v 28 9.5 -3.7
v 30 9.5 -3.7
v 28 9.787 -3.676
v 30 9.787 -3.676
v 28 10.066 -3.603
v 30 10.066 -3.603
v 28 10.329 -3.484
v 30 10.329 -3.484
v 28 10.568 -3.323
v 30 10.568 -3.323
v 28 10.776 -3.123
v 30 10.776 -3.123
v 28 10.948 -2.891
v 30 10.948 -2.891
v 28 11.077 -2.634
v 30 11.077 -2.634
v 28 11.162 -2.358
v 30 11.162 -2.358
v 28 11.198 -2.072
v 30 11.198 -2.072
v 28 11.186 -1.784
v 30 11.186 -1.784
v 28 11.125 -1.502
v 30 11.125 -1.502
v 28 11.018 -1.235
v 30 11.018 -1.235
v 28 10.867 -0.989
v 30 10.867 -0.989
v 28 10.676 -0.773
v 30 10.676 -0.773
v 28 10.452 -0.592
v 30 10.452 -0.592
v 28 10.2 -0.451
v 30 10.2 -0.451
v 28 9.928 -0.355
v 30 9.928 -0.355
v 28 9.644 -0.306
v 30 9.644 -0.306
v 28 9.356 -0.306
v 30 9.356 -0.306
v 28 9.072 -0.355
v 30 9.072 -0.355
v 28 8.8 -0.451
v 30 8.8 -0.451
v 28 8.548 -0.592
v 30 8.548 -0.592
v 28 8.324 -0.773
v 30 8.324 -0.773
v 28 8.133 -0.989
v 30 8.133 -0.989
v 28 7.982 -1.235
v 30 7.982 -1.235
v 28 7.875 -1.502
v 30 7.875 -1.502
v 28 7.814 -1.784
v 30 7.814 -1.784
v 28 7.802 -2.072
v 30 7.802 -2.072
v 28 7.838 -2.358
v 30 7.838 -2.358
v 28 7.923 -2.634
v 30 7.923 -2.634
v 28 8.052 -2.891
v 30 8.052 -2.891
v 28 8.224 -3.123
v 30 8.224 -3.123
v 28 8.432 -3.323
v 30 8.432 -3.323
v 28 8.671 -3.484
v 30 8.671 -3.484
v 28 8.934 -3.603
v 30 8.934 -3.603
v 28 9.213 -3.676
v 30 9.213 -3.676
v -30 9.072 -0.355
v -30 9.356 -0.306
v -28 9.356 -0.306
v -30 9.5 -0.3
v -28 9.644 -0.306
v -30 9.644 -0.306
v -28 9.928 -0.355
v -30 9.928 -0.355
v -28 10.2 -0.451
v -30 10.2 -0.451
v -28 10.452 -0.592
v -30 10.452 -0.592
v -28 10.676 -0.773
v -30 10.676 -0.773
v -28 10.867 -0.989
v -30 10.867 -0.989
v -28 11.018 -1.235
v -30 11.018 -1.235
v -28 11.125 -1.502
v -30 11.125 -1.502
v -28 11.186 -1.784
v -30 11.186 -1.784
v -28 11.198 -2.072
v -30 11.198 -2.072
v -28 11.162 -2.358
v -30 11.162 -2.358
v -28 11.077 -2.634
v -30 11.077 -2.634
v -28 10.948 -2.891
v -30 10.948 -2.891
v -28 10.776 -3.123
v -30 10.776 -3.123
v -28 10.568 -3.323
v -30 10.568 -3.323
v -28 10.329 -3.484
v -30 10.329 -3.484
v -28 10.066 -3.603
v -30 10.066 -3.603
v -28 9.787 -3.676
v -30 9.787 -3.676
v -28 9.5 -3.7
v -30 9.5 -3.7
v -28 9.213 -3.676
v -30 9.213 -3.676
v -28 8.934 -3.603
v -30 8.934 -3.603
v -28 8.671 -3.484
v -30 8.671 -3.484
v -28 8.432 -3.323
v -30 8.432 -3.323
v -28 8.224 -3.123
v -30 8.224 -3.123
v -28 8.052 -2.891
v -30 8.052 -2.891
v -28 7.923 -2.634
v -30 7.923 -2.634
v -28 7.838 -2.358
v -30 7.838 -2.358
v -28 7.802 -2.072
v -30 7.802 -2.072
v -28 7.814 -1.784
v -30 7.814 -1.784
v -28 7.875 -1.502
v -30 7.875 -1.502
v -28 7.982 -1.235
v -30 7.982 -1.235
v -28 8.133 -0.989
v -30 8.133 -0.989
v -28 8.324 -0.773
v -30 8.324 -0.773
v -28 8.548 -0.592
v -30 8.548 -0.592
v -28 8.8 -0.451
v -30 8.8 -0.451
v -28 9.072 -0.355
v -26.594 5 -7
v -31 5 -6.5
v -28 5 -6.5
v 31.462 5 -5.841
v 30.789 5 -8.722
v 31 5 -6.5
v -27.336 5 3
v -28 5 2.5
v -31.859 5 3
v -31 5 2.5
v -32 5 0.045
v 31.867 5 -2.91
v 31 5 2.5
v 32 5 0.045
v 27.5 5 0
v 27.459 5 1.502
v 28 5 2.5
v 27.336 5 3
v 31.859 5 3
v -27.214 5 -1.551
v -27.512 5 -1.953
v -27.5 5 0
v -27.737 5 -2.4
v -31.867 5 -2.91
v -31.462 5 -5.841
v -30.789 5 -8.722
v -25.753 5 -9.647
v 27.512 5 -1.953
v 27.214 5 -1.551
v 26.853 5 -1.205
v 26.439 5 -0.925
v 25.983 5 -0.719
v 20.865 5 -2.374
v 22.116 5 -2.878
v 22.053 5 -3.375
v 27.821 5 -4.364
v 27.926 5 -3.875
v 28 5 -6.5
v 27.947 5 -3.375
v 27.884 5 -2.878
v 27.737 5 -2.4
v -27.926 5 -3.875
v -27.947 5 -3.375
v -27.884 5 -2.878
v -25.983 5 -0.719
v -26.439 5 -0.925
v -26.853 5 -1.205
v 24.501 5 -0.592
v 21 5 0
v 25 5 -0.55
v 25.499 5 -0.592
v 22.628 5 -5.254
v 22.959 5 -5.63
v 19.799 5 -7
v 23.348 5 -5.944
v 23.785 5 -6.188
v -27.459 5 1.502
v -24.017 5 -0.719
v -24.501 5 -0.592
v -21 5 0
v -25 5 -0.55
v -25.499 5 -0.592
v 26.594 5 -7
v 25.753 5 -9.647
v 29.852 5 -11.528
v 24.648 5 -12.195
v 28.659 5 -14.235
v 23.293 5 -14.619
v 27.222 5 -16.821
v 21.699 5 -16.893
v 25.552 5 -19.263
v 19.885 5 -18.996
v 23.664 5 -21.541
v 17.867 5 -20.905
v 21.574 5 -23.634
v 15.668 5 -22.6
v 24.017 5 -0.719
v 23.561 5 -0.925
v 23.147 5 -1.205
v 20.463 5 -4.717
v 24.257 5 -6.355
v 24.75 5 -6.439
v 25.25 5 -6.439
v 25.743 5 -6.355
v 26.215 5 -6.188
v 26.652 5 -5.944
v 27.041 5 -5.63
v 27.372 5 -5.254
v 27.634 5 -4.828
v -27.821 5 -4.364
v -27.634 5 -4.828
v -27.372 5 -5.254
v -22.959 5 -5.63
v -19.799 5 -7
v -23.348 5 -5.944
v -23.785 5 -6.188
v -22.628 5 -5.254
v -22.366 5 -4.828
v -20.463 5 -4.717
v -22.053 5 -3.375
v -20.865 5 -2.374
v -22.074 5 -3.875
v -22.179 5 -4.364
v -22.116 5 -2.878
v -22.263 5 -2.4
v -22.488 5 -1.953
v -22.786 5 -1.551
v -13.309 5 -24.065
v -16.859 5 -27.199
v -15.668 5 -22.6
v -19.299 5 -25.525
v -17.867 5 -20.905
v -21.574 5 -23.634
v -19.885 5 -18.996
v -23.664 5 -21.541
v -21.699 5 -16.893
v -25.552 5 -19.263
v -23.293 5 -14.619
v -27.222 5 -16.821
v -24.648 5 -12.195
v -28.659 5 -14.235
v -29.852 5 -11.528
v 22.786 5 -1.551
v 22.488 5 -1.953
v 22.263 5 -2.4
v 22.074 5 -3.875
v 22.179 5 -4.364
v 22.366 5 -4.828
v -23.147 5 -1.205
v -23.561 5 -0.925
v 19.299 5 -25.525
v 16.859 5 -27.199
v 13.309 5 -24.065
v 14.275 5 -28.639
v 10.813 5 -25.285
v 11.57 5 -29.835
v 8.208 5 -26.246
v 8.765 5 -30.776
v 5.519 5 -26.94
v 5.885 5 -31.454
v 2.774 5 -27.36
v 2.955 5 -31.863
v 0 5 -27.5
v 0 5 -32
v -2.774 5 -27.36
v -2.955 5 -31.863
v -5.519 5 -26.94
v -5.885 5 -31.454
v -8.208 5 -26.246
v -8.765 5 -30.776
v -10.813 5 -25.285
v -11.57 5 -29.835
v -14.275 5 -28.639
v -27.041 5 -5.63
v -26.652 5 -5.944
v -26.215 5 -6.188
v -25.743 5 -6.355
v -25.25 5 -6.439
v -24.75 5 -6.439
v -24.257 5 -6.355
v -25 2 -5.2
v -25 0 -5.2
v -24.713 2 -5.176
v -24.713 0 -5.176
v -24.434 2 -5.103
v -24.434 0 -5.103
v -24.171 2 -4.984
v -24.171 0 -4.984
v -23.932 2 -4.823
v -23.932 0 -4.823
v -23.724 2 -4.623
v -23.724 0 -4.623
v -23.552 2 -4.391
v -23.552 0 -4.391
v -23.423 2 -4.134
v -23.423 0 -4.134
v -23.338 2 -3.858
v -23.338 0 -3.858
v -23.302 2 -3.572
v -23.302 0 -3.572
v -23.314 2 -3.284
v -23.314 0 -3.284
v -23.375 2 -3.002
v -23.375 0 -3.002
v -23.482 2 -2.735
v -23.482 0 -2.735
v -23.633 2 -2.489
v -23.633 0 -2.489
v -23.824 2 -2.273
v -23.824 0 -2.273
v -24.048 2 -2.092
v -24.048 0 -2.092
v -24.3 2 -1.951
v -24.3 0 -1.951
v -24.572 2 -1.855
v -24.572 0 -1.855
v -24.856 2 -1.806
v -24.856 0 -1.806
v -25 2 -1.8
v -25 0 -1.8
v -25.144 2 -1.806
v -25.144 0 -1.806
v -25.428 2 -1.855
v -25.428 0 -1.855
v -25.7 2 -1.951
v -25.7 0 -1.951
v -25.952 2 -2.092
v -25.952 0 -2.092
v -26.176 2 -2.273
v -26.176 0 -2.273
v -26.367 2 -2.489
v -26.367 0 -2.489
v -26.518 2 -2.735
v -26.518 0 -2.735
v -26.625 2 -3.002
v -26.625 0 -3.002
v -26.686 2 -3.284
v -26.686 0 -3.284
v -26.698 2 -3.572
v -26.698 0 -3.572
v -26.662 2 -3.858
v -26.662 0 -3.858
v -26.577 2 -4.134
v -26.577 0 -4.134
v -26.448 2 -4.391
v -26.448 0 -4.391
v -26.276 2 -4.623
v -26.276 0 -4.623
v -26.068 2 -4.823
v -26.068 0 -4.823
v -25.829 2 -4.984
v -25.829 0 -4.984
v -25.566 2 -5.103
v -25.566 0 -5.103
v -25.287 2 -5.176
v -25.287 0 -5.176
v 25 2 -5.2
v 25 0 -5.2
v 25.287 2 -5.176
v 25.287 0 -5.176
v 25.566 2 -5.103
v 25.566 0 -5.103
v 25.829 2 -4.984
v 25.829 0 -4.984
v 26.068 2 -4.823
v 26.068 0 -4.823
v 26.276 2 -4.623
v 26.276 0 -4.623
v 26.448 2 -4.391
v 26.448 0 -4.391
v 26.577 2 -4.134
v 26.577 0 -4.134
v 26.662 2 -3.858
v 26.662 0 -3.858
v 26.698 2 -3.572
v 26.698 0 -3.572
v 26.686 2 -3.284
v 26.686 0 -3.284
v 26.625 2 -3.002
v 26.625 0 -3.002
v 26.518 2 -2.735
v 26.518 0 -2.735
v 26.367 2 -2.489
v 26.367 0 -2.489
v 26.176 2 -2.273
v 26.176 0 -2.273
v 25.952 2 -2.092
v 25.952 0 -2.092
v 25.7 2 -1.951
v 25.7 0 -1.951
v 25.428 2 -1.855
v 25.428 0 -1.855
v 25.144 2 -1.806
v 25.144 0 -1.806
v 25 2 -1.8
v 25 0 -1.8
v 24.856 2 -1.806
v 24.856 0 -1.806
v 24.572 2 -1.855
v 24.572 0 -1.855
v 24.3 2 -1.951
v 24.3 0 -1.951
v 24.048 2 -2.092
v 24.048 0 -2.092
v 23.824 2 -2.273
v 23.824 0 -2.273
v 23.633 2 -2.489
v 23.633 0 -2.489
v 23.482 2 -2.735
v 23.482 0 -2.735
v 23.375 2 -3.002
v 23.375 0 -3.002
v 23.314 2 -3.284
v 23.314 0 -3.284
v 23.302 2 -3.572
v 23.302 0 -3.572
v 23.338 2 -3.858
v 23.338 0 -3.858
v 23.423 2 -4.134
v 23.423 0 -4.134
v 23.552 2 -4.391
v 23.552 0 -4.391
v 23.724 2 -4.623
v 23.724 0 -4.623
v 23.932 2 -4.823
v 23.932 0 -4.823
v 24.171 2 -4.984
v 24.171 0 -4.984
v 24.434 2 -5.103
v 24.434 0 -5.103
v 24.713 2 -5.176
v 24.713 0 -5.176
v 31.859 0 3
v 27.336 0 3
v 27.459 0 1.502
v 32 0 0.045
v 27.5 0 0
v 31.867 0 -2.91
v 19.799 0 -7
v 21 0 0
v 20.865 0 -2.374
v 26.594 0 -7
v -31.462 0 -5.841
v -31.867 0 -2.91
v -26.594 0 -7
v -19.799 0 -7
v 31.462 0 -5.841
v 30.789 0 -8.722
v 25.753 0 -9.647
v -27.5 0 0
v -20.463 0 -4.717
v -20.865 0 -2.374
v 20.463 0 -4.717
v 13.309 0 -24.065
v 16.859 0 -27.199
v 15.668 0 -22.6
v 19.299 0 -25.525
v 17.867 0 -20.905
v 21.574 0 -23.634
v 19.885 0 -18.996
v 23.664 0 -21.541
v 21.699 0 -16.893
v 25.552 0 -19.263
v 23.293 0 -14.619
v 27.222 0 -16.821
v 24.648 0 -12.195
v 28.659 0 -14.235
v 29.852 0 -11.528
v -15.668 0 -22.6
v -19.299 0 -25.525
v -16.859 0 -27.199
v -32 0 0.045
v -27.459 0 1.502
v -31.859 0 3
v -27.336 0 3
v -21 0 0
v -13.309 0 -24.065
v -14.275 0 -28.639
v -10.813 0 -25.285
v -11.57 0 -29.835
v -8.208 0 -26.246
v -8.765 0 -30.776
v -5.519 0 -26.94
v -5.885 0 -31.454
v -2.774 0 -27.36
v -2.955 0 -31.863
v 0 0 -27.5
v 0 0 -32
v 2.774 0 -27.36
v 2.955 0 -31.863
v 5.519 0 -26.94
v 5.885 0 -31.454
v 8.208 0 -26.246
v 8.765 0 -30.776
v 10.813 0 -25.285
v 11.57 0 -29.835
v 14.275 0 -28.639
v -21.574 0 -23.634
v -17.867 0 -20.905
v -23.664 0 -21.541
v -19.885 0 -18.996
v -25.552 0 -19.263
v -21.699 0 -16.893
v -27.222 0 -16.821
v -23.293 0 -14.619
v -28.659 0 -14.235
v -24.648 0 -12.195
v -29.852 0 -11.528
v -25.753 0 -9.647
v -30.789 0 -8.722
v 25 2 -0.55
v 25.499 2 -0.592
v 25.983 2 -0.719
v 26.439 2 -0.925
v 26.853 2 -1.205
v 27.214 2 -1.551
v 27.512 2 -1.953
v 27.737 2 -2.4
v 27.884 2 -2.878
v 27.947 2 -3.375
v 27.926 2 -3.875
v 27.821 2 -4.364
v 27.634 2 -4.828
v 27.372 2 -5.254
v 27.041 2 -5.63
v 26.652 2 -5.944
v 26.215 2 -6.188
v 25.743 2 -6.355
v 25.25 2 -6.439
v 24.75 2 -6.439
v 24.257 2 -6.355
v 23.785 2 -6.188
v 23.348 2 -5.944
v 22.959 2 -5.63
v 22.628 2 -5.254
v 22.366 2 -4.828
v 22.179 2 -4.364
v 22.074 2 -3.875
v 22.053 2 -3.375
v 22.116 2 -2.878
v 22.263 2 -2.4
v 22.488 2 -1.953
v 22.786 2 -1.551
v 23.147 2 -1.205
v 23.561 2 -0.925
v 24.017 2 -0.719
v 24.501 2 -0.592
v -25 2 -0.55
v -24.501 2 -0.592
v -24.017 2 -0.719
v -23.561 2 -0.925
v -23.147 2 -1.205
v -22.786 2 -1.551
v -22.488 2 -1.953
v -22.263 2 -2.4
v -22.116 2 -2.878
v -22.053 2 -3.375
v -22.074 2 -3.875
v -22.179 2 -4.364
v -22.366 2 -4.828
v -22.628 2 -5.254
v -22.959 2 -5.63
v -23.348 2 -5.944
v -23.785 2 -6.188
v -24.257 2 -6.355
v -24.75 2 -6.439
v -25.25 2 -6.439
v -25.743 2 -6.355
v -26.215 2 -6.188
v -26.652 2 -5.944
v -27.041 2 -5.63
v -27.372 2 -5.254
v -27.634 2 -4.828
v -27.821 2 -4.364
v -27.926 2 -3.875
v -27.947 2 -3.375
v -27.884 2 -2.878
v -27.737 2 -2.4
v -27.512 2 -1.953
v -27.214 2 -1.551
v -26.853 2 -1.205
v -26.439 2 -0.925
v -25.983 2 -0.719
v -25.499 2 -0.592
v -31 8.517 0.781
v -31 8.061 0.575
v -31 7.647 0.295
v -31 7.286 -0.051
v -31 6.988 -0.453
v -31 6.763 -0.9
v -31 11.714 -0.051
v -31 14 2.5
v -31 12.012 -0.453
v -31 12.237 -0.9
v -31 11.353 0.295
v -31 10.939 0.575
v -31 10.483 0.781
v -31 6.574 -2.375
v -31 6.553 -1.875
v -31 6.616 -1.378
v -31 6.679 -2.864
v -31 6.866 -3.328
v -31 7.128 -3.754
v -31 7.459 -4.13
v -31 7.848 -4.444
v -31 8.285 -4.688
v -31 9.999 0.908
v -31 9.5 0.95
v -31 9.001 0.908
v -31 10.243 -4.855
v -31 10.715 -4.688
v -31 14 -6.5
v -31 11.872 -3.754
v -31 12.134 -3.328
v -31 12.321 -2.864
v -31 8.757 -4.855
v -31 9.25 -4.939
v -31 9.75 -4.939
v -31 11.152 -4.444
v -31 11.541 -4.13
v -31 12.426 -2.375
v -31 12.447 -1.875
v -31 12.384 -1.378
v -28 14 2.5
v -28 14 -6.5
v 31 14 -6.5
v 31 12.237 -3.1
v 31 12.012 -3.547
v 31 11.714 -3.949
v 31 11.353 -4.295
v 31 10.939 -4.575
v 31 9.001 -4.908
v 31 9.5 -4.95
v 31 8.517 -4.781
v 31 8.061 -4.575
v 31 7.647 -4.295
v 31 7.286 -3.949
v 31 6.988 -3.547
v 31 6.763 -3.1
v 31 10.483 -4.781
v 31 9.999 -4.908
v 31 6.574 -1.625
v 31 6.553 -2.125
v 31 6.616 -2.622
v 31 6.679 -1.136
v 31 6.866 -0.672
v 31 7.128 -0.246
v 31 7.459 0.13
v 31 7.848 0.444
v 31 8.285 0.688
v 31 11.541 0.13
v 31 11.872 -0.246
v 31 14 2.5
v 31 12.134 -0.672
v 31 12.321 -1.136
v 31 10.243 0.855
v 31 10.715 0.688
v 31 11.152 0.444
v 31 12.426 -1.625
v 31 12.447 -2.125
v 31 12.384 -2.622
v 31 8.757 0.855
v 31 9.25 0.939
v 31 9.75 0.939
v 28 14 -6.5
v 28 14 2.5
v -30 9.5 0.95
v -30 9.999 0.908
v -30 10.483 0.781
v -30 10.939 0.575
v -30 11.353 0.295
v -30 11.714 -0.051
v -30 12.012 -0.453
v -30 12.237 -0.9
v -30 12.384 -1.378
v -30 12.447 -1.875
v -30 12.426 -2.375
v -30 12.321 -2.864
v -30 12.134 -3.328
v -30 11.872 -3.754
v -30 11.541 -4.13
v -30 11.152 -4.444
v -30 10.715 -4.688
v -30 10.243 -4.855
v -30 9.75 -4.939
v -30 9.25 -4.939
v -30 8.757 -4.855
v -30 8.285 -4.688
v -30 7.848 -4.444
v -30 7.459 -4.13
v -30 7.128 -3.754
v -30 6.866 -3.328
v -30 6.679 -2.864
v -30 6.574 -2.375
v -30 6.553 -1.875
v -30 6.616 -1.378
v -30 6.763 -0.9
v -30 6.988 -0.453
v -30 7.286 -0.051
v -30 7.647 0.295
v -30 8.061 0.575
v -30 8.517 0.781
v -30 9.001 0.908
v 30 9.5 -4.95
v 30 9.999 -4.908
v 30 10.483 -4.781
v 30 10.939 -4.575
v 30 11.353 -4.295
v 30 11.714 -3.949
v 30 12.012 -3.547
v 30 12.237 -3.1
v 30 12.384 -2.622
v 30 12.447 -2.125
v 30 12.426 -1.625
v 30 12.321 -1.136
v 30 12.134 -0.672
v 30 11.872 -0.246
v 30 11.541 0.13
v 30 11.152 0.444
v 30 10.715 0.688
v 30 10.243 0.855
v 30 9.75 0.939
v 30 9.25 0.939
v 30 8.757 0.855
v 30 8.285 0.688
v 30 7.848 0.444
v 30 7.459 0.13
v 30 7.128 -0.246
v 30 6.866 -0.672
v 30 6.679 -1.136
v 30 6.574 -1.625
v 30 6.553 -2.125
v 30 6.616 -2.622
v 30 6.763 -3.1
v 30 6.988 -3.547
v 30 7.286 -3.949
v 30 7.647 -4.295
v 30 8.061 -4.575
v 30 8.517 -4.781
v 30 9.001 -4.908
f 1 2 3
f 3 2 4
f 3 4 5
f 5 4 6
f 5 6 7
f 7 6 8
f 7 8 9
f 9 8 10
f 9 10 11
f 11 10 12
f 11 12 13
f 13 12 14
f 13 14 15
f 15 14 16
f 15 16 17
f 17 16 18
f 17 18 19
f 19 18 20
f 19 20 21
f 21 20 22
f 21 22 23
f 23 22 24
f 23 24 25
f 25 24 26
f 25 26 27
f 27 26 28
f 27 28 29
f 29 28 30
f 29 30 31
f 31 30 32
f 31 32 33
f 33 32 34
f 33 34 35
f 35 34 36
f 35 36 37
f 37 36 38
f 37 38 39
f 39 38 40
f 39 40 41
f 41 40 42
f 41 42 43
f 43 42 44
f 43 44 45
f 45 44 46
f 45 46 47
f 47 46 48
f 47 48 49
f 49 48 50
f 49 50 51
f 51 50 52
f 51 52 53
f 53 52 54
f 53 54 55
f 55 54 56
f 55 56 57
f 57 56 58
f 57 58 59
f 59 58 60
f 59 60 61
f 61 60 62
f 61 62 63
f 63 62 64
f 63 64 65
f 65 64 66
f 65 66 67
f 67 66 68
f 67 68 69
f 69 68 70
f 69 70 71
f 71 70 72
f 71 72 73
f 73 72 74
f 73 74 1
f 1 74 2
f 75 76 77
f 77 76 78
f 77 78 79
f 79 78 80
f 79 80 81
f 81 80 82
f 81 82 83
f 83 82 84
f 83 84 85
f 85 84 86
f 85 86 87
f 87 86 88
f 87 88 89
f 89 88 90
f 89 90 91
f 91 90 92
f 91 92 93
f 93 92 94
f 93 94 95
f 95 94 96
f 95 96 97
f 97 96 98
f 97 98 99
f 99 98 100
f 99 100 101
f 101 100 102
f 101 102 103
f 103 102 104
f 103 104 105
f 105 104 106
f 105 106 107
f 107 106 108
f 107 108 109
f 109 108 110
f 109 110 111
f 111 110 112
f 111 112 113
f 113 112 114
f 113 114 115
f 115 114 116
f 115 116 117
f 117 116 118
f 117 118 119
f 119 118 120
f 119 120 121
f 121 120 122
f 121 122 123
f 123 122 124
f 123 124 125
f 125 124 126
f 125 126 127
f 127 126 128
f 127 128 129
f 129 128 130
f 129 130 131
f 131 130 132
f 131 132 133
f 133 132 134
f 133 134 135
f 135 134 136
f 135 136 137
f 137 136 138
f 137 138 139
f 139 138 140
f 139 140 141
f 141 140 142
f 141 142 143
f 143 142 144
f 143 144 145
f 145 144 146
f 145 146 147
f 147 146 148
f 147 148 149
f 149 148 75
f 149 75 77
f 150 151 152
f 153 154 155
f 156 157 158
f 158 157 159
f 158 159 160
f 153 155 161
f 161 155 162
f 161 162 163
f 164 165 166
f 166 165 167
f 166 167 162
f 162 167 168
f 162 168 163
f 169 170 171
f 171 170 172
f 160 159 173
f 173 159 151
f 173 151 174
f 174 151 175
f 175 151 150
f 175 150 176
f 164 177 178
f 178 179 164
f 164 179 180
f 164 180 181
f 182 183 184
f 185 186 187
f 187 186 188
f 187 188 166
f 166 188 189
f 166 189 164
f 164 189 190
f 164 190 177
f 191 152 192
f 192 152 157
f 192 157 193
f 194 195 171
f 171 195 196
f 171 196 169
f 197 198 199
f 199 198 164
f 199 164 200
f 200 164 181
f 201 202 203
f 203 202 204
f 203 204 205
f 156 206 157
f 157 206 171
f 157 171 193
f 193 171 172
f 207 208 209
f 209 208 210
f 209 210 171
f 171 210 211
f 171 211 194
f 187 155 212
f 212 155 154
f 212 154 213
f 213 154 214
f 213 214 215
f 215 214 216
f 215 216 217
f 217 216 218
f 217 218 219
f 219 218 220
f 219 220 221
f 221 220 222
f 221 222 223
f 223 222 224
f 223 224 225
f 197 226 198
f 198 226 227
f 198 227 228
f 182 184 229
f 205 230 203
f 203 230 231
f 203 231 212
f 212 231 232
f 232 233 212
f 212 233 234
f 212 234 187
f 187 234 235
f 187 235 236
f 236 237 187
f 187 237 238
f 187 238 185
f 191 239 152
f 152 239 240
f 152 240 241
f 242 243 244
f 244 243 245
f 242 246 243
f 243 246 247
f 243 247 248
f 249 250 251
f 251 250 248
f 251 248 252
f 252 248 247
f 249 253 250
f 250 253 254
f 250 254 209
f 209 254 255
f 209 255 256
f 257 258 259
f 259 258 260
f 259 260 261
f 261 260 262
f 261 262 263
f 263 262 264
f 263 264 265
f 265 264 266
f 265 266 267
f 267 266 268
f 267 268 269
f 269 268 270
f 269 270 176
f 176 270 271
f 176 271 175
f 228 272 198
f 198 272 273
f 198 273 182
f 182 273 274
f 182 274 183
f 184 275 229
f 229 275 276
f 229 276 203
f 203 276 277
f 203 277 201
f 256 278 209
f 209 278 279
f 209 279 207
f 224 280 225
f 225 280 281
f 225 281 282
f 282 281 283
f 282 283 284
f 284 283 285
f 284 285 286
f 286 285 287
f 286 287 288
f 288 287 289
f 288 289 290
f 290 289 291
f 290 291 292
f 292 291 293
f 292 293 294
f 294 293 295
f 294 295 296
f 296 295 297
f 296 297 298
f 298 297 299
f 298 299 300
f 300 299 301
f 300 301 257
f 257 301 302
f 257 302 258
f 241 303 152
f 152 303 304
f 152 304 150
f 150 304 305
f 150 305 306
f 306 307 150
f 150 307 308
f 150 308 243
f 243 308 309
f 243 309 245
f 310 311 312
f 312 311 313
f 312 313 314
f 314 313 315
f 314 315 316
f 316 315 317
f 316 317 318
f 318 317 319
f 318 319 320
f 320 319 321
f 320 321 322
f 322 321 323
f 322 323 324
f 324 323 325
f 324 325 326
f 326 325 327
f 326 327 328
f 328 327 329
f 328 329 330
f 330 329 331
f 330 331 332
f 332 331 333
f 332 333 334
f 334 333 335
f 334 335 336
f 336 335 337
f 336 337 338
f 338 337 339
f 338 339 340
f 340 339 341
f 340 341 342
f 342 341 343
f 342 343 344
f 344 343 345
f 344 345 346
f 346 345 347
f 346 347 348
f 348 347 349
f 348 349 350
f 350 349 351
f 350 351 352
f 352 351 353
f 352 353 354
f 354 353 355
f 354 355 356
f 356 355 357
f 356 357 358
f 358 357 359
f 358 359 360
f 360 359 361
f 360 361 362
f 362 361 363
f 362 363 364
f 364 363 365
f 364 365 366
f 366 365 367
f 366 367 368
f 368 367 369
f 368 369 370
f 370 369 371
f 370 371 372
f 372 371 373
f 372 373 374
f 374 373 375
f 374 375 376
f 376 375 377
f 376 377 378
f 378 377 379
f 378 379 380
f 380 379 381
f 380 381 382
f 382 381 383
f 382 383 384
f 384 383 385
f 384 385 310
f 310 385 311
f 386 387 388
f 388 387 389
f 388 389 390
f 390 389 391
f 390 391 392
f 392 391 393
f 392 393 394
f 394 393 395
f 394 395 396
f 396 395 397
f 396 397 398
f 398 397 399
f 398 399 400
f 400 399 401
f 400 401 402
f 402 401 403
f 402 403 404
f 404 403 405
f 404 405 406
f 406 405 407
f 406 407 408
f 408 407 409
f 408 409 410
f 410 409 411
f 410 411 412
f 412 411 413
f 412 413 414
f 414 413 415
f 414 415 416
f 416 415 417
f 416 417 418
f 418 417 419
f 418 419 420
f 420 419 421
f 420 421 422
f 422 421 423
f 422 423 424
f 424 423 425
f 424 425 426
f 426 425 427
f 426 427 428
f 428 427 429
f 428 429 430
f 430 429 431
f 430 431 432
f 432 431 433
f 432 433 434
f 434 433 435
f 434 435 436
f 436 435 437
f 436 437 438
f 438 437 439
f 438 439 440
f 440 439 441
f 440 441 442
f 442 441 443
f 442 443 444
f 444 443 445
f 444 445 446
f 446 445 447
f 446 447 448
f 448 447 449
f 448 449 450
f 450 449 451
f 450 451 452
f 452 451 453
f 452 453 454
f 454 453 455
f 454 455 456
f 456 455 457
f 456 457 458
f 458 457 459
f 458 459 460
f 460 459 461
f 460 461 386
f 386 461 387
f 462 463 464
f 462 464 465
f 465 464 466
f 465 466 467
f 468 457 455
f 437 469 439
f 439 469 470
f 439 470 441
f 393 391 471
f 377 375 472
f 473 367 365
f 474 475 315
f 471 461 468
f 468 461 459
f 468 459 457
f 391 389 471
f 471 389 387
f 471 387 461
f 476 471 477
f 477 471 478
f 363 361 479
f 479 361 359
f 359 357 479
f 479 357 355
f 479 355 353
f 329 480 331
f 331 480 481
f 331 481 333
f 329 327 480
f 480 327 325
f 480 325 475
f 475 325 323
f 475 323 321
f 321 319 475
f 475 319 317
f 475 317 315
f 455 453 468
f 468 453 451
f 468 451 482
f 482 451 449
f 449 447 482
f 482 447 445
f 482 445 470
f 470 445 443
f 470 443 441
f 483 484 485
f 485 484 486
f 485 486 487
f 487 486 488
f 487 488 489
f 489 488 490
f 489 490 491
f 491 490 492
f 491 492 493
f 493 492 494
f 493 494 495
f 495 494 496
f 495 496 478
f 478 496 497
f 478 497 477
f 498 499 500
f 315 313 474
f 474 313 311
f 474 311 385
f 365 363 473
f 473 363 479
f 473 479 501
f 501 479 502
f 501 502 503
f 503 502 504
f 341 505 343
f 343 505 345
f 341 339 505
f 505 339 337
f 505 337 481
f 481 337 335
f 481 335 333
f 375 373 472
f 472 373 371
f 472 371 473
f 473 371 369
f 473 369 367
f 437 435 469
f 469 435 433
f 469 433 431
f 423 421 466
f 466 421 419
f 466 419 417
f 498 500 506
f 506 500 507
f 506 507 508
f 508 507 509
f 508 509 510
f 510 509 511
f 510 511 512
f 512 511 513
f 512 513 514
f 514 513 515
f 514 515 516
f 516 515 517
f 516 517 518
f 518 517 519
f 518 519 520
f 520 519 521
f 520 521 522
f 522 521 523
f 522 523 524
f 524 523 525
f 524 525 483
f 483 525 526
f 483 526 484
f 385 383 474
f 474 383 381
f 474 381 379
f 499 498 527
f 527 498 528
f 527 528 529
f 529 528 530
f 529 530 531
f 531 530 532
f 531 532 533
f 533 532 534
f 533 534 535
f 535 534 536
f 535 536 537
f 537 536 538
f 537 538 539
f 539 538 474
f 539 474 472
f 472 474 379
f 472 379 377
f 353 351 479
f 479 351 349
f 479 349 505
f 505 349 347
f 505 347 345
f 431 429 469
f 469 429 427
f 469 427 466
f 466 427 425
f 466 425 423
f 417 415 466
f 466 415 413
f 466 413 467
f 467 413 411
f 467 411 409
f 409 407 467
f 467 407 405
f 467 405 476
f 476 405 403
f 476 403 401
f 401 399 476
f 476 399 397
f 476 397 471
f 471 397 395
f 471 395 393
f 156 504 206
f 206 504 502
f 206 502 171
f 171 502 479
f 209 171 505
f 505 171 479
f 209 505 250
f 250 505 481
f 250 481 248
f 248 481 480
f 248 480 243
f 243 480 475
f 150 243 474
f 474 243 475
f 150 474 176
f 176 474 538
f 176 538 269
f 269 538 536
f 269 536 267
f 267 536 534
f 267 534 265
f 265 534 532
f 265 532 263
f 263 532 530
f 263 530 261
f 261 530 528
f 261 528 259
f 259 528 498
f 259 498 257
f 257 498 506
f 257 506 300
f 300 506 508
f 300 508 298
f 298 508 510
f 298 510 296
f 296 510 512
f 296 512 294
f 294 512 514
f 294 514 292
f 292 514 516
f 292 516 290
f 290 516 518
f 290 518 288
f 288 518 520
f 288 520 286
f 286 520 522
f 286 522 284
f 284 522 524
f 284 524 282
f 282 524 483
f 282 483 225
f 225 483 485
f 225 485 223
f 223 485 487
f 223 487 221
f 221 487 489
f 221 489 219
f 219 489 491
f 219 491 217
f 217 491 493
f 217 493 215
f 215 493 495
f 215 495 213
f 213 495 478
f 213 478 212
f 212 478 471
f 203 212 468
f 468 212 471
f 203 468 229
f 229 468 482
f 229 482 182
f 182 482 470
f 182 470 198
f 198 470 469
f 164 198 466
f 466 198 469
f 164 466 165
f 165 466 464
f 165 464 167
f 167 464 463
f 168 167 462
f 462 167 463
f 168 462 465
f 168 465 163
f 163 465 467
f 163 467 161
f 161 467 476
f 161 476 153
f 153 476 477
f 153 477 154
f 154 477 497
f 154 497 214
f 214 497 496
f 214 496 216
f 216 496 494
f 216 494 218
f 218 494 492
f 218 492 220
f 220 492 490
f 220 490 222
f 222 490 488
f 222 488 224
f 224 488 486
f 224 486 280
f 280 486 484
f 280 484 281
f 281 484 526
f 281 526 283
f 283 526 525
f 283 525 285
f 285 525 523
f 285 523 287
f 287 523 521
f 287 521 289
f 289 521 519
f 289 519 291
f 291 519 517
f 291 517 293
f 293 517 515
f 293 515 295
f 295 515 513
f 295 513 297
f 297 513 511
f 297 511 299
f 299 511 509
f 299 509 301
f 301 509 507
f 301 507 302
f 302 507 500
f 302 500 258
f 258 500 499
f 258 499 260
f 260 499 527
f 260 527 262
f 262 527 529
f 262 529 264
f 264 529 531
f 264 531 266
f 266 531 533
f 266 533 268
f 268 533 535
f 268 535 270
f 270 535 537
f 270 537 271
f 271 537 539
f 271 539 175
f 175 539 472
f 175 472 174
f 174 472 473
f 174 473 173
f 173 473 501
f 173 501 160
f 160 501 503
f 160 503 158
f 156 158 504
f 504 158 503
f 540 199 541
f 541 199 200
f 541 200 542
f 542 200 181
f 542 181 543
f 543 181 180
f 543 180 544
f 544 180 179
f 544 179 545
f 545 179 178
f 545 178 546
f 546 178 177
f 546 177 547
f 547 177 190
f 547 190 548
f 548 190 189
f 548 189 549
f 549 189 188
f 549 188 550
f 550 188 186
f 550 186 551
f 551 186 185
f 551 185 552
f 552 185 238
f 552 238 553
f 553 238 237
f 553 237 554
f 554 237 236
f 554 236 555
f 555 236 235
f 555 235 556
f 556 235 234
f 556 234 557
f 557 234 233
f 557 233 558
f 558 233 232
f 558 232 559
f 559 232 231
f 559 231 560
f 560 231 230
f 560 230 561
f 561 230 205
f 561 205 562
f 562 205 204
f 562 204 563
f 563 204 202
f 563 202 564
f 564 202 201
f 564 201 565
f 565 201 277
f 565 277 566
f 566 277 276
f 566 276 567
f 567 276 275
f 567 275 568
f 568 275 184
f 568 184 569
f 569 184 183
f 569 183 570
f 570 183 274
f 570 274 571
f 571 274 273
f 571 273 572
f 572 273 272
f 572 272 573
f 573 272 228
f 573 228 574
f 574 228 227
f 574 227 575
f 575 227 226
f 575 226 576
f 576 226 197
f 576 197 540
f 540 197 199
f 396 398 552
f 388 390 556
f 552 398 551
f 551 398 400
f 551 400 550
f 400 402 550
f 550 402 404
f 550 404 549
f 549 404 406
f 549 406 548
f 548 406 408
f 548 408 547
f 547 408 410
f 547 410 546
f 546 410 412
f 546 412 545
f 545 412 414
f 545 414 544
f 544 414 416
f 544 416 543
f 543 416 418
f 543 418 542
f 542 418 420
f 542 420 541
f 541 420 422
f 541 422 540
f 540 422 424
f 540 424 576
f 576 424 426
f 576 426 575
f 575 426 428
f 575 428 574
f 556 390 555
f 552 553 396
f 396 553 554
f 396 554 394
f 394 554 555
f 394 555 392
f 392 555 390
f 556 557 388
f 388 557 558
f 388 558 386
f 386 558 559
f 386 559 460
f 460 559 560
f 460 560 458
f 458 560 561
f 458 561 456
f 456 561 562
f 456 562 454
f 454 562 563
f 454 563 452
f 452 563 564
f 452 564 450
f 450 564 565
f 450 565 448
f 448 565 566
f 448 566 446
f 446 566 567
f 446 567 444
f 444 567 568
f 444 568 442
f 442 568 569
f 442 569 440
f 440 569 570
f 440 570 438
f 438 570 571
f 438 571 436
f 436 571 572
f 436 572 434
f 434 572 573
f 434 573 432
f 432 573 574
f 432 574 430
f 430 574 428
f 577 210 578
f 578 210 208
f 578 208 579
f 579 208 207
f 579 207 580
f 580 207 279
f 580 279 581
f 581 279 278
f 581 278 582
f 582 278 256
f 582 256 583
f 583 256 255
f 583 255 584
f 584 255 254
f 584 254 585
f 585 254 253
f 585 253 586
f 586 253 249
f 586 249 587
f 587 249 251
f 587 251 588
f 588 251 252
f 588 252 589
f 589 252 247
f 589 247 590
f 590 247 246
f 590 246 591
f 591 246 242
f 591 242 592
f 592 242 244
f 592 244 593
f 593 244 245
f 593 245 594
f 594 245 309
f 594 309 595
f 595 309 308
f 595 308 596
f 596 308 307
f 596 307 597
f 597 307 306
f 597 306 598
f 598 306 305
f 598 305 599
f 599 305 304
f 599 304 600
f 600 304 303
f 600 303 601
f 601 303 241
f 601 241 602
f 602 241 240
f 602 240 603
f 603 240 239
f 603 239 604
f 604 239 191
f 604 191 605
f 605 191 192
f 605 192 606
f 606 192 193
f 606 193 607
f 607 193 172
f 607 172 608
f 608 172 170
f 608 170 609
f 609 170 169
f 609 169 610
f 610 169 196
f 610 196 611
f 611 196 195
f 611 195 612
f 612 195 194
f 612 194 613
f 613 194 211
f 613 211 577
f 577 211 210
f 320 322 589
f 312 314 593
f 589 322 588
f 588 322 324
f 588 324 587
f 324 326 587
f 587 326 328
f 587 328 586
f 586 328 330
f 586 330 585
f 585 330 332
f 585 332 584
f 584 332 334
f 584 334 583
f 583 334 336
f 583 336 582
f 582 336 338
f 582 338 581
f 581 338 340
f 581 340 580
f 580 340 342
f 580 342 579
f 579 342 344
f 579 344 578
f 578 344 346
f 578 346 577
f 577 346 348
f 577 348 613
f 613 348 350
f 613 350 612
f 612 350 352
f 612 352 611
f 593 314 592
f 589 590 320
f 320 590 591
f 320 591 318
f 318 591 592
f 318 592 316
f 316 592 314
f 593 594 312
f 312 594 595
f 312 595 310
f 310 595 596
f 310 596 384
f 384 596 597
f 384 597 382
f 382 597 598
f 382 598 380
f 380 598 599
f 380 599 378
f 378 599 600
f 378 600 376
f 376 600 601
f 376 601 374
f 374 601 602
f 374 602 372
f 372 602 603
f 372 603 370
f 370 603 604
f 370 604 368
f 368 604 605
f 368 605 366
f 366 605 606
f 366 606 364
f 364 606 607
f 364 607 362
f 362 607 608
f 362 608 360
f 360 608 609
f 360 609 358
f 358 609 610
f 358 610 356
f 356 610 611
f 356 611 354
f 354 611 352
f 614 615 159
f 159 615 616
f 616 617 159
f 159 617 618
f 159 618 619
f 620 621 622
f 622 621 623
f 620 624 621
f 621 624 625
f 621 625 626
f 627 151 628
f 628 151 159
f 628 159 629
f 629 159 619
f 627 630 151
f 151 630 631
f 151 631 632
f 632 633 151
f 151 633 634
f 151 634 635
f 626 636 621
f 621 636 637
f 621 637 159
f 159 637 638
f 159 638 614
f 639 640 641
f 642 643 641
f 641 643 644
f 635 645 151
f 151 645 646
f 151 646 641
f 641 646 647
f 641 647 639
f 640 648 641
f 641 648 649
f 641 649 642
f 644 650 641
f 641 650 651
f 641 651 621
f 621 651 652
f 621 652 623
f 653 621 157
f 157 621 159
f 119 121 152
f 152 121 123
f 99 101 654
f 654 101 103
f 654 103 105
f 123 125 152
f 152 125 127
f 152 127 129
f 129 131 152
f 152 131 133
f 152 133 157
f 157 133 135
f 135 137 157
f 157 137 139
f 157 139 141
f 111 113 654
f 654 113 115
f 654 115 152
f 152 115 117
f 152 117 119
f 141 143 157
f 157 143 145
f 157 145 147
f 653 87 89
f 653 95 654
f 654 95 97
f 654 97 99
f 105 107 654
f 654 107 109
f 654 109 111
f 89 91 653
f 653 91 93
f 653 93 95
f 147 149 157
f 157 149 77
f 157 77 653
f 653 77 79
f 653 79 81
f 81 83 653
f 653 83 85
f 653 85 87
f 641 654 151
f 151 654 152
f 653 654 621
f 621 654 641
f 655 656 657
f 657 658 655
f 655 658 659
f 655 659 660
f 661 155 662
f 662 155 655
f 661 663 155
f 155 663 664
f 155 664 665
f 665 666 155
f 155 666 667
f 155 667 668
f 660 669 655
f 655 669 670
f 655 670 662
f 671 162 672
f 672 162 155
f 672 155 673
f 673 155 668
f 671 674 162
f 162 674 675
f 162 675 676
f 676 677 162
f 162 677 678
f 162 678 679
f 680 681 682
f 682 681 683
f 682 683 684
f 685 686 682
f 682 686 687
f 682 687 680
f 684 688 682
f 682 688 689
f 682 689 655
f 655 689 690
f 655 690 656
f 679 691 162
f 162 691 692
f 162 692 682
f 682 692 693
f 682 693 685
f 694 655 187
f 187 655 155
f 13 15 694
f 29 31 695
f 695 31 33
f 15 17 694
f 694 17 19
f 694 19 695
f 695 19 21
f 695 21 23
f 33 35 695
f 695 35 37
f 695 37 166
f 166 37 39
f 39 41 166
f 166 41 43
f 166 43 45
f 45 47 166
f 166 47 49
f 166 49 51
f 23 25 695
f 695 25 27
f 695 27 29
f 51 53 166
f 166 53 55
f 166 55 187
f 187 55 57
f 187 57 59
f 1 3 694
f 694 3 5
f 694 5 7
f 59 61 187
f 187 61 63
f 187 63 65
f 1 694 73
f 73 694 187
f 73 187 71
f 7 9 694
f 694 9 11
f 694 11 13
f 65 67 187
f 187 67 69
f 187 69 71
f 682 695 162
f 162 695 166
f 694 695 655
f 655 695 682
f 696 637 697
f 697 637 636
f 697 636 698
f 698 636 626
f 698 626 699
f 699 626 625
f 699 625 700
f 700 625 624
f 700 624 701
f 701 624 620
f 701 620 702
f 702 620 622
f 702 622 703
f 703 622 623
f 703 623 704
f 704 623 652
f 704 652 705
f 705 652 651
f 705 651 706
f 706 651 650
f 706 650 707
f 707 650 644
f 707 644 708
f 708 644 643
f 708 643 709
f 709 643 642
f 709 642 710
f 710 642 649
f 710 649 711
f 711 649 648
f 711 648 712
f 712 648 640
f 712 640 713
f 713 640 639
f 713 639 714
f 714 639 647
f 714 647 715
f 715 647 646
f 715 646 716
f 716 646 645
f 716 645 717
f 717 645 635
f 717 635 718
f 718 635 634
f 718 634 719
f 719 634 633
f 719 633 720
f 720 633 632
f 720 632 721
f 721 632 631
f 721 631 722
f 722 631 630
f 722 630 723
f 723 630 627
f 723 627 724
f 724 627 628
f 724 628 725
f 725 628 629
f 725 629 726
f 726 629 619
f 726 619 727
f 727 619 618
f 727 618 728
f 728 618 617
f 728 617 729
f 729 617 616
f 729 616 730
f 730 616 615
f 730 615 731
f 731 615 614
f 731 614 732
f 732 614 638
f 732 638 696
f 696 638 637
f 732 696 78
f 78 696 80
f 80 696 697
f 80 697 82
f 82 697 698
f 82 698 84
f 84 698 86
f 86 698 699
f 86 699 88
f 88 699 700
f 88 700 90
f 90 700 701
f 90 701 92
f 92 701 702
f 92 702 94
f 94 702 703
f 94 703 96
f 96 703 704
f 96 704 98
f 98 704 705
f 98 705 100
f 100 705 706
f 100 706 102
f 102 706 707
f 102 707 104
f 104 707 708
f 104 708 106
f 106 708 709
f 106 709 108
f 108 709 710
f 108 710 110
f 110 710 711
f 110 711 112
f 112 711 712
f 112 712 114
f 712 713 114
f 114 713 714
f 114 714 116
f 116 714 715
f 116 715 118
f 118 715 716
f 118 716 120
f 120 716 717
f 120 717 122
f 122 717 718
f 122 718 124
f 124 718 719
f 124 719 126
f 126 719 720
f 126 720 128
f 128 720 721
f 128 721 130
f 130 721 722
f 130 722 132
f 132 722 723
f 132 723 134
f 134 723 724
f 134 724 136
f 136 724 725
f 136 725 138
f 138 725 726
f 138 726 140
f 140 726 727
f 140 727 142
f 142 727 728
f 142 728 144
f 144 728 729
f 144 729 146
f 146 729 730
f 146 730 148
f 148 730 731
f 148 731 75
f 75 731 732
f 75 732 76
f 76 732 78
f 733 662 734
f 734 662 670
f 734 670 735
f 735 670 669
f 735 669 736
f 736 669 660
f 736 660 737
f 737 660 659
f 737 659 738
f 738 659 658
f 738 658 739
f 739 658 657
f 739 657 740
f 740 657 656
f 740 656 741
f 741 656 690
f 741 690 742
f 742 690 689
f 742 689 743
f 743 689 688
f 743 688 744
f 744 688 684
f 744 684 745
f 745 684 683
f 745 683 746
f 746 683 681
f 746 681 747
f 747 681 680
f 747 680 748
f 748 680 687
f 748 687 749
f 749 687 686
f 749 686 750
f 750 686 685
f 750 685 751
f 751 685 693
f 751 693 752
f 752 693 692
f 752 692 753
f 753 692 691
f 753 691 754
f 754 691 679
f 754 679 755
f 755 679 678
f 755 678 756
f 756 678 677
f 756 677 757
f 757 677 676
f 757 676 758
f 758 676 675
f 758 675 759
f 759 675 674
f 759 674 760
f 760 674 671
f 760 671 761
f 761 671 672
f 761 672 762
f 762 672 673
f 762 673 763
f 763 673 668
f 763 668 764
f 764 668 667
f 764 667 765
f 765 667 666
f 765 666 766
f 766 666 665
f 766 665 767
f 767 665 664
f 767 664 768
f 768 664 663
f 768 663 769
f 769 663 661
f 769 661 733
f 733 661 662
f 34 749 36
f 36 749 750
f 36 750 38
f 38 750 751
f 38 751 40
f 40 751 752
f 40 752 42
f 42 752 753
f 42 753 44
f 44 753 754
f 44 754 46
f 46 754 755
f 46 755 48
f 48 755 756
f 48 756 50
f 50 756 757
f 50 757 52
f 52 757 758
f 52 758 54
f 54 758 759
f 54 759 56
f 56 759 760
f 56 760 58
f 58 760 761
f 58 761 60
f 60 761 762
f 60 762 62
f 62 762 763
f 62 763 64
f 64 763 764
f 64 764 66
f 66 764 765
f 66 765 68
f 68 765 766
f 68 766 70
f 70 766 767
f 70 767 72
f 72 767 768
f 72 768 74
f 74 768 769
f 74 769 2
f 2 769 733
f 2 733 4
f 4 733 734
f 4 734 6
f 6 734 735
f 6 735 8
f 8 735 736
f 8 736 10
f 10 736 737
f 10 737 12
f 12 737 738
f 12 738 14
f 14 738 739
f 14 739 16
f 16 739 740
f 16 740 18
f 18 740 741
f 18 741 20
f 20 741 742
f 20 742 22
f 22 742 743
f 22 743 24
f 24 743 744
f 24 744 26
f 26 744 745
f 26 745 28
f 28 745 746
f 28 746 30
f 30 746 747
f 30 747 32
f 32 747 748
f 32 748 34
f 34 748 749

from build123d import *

# Parameters (mm, degrees)
CROQUIS1_R              = 1.7
SALIENTE_EXTRUIR1_DEPTH = 5
CROQUIS3_R              = 2.95
CORTAR_EXTRUIR1_DEPTH   = 3
SKETCH1_W               = 3
SKETCH1_H               = 9
BOSS_EXTRUDE1_DEPTH     = 9
CUT_EXTRUDE3_DEPTH      = 10
CUT_EXTRUDE3_DEPTH_BACK = 73
SKETCH2_R               = 1.7
SKETCH4_R               = 2.95
CUT_EXTRUDE4_DEPTH      = 1
CUT_EXTRUDE5_START      = -1
SKETCH5_R               = 2.95
CUT_EXTRUDE5_DEPTH      = 1


with BuildPart() as part:
    # Croquis1 → Saliente-Extruir1 (new body)
    with BuildSketch(Plane(origin=(0, 0, 0), x_dir=(1, 0, 0), z_dir=(0, 1, 0))):
        with BuildLine():
            Line((-31.859064644, -3), (-27.335873866, -3))
            ThreePointArc((-27.335873866, -3), (-27.45893781, -1.502243105), (-27.5, 0))
            Line((-27.5, 0), (-21, 0))
            ThreePointArc((-21, 0), (-20.697569753, 3.551141553), (-19.798989873, 7))
            Line((-19.798989873, 7), (-26.594172294, 7))
            ThreePointArc((-26.594172294, 7), (0, 27.5), (26.594172294, 7))
            Line((26.594172294, 7), (19.798989873, 7))
            ThreePointArc((19.798989873, 7), (20.697569753, 3.551141553), (21, 0))
            Line((21, 0), (27.5, 0))
            ThreePointArc((27.5, 0), (27.45893781, -1.502243105), (27.335873866, -3))
            Line((27.335873866, -3), (31.859064644, -3))
            ThreePointArc((31.859064644, -3), (0, 32), (-31.859064644, -3))
        make_face()
        with Locations(Location((-25, 3.5, 0), (0, 0, 270))):
            Circle(CROQUIS1_R, mode=Mode.SUBTRACT)
        with Locations(Location((25, 3.5, 0), (0, 0, 270))):
            Circle(CROQUIS1_R, mode=Mode.SUBTRACT)
    extrude(amount=SALIENTE_EXTRUIR1_DEPTH)

    # Croquis3 → Cortar-Extruir1 (cut)
    with BuildSketch(Plane(origin=(0, 5, 0), x_dir=(1, 0, 0), z_dir=(0, 1, 0))):
        with Locations(Location((-25, 3.5, 0), (0, 0, 270))):
            Circle(CROQUIS3_R)
        with Locations(Location((25, 3.5, 0), (0, 0, 270))):
            Circle(CROQUIS3_R)
    extrude(amount=-CORTAR_EXTRUIR1_DEPTH, mode=Mode.SUBTRACT)

    # Sketch1 → Boss-Extrude1 (add)
    with BuildSketch(Plane(origin=(0, 5, 0), x_dir=(1, 0, 0), z_dir=(0, 1, 0))):
        with Locations((-29.5, 2)):
            Rectangle(SKETCH1_W, SKETCH1_H)
        with Locations((29.5, 2)):
            Rectangle(SKETCH1_W, SKETCH1_H)
    extrude(amount=BOSS_EXTRUDE1_DEPTH)

    # Sketch2 → Cut-Extrude3 (cut, two sides: drawn at the far end of the back side and taken through both)
    with BuildSketch(Plane.ZY.offset(31).offset(-CUT_EXTRUDE3_DEPTH_BACK)):
        with Locations(Location((-2, 9.5, 0), (0, 0, 180))):
            Circle(SKETCH2_R)
    extrude(amount=CUT_EXTRUDE3_DEPTH + CUT_EXTRUDE3_DEPTH_BACK, mode=Mode.SUBTRACT)

    # Sketch4 → Cut-Extrude4 (cut)
    with BuildSketch(Plane.ZY.offset(31)):
        with Locations((-2, 9.5)):
            Circle(SKETCH4_R)
    extrude(amount=-CUT_EXTRUDE4_DEPTH, mode=Mode.SUBTRACT)

    # Sketch5 → Cut-Extrude5 (cut)
    with BuildSketch(Plane(origin=(31, 0, 0), x_dir=(0, 0, -1), z_dir=(1, 0, 0)).offset(CUT_EXTRUDE5_START)):
        with Locations(Location((2, 9.5, 0), (0, 0, 180))):
            Circle(SKETCH5_R)
    extrude(amount=CUT_EXTRUDE5_DEPTH, mode=Mode.SUBTRACT)


solid = part.part
